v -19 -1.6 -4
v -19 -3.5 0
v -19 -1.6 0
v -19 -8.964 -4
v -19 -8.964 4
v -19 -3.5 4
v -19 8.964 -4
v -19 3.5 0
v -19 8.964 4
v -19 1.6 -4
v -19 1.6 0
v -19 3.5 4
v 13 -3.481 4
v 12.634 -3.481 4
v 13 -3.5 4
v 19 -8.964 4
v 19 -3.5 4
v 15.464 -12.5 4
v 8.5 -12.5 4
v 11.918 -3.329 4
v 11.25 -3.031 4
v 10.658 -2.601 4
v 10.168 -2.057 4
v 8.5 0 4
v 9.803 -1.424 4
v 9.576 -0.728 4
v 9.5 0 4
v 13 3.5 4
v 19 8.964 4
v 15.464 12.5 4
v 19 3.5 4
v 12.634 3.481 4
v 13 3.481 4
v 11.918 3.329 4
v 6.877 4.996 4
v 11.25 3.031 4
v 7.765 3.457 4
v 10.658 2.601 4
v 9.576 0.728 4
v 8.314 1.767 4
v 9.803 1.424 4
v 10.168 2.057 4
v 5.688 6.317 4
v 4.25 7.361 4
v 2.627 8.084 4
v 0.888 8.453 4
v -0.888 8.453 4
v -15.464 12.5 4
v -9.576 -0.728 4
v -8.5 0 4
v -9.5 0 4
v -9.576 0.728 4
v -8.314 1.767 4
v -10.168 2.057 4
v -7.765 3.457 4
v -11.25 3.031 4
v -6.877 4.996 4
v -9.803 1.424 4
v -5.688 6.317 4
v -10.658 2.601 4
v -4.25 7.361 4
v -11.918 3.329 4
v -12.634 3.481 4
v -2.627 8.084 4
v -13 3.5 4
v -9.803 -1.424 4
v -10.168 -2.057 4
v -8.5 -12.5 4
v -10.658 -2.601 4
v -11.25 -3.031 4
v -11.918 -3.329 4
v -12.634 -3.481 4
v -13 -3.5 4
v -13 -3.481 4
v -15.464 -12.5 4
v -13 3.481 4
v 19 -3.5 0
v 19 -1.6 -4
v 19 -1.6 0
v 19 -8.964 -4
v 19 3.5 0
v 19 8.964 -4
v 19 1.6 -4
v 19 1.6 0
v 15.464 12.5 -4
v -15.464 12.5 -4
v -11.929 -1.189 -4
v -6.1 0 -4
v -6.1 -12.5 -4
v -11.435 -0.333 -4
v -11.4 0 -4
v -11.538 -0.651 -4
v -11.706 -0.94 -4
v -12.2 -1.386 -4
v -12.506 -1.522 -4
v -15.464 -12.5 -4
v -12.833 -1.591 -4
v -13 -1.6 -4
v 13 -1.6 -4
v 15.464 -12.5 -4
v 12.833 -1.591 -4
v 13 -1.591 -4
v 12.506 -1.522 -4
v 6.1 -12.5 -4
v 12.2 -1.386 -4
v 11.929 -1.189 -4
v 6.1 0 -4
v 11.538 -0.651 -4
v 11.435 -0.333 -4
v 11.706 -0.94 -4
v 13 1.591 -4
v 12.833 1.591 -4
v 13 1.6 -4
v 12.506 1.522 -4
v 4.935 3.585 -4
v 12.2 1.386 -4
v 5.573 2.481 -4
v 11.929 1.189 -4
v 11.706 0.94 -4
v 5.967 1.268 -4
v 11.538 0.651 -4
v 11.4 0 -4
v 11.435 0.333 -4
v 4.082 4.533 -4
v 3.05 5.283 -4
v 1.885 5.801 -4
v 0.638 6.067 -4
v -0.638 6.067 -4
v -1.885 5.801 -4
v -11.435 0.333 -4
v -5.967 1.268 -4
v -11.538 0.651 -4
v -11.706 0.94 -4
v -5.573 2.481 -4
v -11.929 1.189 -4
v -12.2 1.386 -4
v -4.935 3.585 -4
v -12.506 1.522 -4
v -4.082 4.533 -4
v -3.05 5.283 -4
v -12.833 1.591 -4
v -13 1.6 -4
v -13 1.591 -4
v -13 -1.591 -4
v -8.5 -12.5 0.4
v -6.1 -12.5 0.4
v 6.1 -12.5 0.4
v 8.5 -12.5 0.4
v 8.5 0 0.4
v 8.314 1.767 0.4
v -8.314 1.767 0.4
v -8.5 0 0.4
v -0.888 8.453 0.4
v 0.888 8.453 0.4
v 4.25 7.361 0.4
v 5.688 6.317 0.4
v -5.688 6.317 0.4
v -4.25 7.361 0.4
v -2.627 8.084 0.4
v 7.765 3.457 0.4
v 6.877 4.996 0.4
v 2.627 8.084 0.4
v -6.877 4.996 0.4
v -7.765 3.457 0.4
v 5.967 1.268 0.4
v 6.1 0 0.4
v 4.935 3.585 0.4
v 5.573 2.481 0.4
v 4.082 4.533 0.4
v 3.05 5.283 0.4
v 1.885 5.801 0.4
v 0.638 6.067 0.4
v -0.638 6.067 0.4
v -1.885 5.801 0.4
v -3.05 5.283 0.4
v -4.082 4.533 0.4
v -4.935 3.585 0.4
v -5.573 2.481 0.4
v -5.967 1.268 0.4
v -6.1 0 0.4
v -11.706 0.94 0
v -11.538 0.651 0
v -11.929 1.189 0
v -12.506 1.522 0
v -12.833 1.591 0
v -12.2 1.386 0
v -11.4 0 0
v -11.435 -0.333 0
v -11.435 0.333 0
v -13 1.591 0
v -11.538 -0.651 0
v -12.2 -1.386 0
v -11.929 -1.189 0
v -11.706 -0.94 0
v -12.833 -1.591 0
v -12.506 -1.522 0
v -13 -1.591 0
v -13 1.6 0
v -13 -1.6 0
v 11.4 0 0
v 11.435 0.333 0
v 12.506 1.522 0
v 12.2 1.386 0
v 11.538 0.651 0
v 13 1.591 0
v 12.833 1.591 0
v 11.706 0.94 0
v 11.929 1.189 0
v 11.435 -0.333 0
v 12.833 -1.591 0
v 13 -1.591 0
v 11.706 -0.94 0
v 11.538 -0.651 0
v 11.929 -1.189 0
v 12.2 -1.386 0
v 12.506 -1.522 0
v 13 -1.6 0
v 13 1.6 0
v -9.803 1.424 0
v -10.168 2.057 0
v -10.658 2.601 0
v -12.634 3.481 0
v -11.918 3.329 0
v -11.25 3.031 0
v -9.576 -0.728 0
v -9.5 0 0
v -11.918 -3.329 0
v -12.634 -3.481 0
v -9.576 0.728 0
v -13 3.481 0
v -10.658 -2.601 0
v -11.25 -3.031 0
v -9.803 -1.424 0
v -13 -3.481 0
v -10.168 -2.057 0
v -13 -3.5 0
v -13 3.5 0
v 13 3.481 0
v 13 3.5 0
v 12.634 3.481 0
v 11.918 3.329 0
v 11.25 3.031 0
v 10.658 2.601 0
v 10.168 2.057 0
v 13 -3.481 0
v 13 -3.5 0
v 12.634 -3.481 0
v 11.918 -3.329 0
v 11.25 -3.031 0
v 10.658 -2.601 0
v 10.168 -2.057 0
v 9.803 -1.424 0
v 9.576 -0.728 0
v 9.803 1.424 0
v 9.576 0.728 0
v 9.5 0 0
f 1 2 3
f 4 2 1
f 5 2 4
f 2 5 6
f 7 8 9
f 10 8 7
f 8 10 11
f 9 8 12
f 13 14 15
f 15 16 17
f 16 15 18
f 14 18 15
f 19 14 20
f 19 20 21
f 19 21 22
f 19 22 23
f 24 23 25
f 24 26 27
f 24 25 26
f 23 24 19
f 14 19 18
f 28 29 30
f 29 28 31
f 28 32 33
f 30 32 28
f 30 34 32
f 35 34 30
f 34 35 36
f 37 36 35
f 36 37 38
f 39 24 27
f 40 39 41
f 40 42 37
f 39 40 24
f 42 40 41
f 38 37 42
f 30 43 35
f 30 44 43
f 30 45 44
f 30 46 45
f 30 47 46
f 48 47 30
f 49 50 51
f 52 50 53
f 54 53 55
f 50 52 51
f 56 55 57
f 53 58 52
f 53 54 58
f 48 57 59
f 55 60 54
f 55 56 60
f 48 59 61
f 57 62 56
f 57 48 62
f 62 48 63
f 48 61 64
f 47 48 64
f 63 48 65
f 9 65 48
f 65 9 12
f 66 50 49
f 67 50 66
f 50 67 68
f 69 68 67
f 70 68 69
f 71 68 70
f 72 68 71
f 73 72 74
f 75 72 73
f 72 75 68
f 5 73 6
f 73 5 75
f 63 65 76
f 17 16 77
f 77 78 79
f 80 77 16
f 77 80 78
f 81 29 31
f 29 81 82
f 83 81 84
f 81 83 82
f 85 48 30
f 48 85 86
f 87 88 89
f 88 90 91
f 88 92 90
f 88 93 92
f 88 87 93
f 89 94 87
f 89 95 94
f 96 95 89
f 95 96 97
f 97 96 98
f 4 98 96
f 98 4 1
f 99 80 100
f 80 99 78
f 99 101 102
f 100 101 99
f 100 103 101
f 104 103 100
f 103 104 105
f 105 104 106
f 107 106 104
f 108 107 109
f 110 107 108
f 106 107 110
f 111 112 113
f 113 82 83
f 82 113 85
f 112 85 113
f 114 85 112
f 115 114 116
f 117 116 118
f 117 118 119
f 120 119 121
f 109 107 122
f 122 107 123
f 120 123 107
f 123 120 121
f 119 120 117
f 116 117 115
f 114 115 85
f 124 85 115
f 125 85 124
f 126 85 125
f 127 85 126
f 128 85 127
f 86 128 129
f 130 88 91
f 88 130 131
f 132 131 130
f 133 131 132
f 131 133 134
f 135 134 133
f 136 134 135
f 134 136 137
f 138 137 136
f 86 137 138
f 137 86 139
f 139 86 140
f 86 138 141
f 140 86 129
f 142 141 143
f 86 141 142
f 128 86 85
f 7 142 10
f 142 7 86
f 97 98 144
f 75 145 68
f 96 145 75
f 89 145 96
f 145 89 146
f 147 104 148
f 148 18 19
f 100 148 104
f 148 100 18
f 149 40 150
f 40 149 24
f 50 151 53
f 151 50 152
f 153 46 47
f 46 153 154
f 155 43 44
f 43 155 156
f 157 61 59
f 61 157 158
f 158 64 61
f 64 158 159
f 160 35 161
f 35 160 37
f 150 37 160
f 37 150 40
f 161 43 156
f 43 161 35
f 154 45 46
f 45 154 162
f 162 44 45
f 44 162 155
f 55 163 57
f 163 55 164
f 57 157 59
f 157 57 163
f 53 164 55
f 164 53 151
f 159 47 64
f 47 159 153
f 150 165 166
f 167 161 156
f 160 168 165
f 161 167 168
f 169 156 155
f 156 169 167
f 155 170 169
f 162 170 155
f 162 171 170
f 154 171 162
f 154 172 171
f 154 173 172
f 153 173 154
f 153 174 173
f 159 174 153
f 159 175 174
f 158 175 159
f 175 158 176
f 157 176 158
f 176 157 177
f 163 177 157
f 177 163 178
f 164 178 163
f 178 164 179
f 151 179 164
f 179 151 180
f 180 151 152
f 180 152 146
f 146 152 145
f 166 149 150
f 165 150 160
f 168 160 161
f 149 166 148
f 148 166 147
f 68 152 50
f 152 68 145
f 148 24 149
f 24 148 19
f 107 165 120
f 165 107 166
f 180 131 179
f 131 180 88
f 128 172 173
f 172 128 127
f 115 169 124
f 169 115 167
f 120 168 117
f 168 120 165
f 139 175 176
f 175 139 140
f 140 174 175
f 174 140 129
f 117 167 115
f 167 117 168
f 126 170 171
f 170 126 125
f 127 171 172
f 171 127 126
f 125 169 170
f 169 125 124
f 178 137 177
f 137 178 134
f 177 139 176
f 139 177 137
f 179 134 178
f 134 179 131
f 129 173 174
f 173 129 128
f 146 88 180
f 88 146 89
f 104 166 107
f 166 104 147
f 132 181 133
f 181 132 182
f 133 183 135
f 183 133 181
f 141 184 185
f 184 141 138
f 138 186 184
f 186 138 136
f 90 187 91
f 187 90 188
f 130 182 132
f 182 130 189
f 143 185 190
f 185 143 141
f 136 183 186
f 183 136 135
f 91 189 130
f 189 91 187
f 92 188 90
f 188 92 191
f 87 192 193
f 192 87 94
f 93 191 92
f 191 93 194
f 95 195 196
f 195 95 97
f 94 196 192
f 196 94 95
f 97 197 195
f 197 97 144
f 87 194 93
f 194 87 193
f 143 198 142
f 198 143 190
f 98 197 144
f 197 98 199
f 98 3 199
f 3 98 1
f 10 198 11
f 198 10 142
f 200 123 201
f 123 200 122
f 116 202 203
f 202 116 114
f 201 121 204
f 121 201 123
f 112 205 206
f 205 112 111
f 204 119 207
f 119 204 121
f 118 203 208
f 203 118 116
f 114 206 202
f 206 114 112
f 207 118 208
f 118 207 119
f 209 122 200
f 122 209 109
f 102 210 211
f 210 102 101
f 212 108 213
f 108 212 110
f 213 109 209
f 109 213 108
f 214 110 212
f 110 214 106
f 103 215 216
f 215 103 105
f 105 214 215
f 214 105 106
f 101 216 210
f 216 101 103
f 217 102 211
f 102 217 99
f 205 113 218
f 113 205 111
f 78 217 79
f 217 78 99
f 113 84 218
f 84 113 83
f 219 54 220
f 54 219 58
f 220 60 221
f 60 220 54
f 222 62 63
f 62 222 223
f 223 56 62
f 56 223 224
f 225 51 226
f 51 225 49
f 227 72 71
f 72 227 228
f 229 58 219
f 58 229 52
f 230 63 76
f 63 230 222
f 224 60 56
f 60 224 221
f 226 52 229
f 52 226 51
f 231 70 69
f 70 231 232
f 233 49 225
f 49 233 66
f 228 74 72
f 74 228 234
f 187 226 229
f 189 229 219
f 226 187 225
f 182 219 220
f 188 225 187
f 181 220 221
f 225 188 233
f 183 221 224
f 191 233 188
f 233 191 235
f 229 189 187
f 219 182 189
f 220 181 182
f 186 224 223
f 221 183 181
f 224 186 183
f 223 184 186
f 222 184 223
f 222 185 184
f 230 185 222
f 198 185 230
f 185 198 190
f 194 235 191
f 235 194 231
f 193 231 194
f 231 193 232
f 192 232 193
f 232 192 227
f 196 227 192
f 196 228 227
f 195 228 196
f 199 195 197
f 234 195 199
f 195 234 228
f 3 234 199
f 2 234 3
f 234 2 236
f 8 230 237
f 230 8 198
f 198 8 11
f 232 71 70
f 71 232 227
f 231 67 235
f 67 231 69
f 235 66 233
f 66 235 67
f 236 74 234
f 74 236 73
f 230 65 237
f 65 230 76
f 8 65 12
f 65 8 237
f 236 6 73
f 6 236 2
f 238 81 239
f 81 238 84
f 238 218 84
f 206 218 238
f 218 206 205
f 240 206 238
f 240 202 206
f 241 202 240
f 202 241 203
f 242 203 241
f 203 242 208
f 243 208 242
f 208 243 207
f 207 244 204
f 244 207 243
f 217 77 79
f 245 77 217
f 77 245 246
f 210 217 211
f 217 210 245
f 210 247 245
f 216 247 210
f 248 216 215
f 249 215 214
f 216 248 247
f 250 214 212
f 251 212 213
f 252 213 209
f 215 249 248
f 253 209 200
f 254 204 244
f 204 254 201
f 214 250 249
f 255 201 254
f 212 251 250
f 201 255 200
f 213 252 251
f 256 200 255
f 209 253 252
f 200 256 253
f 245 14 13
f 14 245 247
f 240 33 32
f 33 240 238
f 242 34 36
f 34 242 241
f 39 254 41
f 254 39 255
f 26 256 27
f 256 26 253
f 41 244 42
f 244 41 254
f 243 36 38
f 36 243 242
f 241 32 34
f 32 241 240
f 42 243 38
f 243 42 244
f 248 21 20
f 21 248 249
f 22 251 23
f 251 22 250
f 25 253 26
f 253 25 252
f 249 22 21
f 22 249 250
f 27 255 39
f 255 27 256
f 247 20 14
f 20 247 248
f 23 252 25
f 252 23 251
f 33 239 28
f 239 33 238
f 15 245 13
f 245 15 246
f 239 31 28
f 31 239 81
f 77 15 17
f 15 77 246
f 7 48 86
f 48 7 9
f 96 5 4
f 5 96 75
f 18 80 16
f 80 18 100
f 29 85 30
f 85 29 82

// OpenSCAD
// RebeliX
//
// nozzle mount
// GNU GPL v3
// Martin Neruda
// http://www.reprap4u.cz

mount_height = 8;
mount_width = 25;
mount_length = 38;

// Z probe ?
// 1 = ANO
// 0 = NE
z_probe = 0;
// Prumer Z sondy
z_probe_dia = 18.4;
// Prumer matky pro prisroubovani sondy
z_probe_nut = 27;

epsilon = 0.01;

module nozzle_mount_base()
{
  if(z_probe)
  {
    translate([2 + z_probe_nut/4,0,0]) cube([mount_length + 4 + z_probe_nut/2,mount_width,mount_height],center=true);
	translate([mount_length/2 + 4 + z_probe_nut/2,0,0]) cylinder(r=mount_width/2,h=mount_height,$fn=32,center=true);
  }
  else
  cube([mount_length,mount_width,mount_height],center=true);
}

module nozzle_mount_cuts()
{
  translate([0,0,4.4]) cylinder(r=8.5,h=mount_height,$fn=30,center=true);
  translate([0,-mount_width/2,4.4]) cube([17,mount_width,mount_height],center=true);
	
  translate([0,0,-mount_height/2 - epsilon]) cylinder(r=6.1,h=mount_height,$fn=30);
  translate([0,-mount_width/2,-epsilon]) cube([12.2,mount_width,mount_height],center=true);
	
  // Otvory pro prisroubovani
  translate([-13,0,0]) cylinder(r=1.6,h=mount_height+1,$fn=30,center=true);
  translate([-13 - mount_width/2,0,0]) cube([mount_width,2*1.6,mount_height+1],center=true);
		
  translate([13,0,0]) cylinder(r=1.6,h=mount_height+1,$fn=30,center=true);
  translate([-13,0,-mount_height/2 + 4]) cylinder(r=7/2,h=mount_height,$fn=30); translate([-13 - mount_width,-7/2,-mount_height/2 + 4]) cube([mount_width,7,mount_height]);
	
  translate([13,0,-mount_height/2 + 4]) cylinder(r=7/2,h=mount_height,$fn=30);
  
  if(z_probe)
  {
    // Z probe
    translate([mount_length/2 + 4 + z_probe_nut/2,0,0]) cylinder(r=z_probe_dia/2,h=mount_height + 0.01,$fn=32,center=true); 
    echo("Nozzle X offset:",mount_length/2 + 4 + z_probe_nut/2);
  }
  else
  {
    translate([13 + mount_width/2,0,0]) cube([mount_width,2*1.6,mount_height+1],center=true);
	translate([13,-7/2,-mount_height/2 + 4]) cube([mount_width,7,mount_height]);
	// Seriznute rohy
	translate([mount_length/2,-mount_width/2,0]) rotate([0,0,45]) cube([5,5,mount_height + 1],center=true);
    translate([mount_length/2,mount_width/2,0]) rotate([0,0,135]) cube([5,5,mount_height + 1],center=true);
  }	
	
  // Seriznute rohy
  translate([-mount_length/2,mount_width/2,0]) rotate([0,0,135]) cube([5,5,mount_height + 1],center=true);
  translate([-mount_length/2,-mount_width/2,0]) rotate([0,0,-45]) cube([5,5,mount_height + 1],center=true);
}

module nozzle_mount()
{
  difference()
  {
    nozzle_mount_base();
	nozzle_mount_cuts();
  }
}

nozzle_mount();
